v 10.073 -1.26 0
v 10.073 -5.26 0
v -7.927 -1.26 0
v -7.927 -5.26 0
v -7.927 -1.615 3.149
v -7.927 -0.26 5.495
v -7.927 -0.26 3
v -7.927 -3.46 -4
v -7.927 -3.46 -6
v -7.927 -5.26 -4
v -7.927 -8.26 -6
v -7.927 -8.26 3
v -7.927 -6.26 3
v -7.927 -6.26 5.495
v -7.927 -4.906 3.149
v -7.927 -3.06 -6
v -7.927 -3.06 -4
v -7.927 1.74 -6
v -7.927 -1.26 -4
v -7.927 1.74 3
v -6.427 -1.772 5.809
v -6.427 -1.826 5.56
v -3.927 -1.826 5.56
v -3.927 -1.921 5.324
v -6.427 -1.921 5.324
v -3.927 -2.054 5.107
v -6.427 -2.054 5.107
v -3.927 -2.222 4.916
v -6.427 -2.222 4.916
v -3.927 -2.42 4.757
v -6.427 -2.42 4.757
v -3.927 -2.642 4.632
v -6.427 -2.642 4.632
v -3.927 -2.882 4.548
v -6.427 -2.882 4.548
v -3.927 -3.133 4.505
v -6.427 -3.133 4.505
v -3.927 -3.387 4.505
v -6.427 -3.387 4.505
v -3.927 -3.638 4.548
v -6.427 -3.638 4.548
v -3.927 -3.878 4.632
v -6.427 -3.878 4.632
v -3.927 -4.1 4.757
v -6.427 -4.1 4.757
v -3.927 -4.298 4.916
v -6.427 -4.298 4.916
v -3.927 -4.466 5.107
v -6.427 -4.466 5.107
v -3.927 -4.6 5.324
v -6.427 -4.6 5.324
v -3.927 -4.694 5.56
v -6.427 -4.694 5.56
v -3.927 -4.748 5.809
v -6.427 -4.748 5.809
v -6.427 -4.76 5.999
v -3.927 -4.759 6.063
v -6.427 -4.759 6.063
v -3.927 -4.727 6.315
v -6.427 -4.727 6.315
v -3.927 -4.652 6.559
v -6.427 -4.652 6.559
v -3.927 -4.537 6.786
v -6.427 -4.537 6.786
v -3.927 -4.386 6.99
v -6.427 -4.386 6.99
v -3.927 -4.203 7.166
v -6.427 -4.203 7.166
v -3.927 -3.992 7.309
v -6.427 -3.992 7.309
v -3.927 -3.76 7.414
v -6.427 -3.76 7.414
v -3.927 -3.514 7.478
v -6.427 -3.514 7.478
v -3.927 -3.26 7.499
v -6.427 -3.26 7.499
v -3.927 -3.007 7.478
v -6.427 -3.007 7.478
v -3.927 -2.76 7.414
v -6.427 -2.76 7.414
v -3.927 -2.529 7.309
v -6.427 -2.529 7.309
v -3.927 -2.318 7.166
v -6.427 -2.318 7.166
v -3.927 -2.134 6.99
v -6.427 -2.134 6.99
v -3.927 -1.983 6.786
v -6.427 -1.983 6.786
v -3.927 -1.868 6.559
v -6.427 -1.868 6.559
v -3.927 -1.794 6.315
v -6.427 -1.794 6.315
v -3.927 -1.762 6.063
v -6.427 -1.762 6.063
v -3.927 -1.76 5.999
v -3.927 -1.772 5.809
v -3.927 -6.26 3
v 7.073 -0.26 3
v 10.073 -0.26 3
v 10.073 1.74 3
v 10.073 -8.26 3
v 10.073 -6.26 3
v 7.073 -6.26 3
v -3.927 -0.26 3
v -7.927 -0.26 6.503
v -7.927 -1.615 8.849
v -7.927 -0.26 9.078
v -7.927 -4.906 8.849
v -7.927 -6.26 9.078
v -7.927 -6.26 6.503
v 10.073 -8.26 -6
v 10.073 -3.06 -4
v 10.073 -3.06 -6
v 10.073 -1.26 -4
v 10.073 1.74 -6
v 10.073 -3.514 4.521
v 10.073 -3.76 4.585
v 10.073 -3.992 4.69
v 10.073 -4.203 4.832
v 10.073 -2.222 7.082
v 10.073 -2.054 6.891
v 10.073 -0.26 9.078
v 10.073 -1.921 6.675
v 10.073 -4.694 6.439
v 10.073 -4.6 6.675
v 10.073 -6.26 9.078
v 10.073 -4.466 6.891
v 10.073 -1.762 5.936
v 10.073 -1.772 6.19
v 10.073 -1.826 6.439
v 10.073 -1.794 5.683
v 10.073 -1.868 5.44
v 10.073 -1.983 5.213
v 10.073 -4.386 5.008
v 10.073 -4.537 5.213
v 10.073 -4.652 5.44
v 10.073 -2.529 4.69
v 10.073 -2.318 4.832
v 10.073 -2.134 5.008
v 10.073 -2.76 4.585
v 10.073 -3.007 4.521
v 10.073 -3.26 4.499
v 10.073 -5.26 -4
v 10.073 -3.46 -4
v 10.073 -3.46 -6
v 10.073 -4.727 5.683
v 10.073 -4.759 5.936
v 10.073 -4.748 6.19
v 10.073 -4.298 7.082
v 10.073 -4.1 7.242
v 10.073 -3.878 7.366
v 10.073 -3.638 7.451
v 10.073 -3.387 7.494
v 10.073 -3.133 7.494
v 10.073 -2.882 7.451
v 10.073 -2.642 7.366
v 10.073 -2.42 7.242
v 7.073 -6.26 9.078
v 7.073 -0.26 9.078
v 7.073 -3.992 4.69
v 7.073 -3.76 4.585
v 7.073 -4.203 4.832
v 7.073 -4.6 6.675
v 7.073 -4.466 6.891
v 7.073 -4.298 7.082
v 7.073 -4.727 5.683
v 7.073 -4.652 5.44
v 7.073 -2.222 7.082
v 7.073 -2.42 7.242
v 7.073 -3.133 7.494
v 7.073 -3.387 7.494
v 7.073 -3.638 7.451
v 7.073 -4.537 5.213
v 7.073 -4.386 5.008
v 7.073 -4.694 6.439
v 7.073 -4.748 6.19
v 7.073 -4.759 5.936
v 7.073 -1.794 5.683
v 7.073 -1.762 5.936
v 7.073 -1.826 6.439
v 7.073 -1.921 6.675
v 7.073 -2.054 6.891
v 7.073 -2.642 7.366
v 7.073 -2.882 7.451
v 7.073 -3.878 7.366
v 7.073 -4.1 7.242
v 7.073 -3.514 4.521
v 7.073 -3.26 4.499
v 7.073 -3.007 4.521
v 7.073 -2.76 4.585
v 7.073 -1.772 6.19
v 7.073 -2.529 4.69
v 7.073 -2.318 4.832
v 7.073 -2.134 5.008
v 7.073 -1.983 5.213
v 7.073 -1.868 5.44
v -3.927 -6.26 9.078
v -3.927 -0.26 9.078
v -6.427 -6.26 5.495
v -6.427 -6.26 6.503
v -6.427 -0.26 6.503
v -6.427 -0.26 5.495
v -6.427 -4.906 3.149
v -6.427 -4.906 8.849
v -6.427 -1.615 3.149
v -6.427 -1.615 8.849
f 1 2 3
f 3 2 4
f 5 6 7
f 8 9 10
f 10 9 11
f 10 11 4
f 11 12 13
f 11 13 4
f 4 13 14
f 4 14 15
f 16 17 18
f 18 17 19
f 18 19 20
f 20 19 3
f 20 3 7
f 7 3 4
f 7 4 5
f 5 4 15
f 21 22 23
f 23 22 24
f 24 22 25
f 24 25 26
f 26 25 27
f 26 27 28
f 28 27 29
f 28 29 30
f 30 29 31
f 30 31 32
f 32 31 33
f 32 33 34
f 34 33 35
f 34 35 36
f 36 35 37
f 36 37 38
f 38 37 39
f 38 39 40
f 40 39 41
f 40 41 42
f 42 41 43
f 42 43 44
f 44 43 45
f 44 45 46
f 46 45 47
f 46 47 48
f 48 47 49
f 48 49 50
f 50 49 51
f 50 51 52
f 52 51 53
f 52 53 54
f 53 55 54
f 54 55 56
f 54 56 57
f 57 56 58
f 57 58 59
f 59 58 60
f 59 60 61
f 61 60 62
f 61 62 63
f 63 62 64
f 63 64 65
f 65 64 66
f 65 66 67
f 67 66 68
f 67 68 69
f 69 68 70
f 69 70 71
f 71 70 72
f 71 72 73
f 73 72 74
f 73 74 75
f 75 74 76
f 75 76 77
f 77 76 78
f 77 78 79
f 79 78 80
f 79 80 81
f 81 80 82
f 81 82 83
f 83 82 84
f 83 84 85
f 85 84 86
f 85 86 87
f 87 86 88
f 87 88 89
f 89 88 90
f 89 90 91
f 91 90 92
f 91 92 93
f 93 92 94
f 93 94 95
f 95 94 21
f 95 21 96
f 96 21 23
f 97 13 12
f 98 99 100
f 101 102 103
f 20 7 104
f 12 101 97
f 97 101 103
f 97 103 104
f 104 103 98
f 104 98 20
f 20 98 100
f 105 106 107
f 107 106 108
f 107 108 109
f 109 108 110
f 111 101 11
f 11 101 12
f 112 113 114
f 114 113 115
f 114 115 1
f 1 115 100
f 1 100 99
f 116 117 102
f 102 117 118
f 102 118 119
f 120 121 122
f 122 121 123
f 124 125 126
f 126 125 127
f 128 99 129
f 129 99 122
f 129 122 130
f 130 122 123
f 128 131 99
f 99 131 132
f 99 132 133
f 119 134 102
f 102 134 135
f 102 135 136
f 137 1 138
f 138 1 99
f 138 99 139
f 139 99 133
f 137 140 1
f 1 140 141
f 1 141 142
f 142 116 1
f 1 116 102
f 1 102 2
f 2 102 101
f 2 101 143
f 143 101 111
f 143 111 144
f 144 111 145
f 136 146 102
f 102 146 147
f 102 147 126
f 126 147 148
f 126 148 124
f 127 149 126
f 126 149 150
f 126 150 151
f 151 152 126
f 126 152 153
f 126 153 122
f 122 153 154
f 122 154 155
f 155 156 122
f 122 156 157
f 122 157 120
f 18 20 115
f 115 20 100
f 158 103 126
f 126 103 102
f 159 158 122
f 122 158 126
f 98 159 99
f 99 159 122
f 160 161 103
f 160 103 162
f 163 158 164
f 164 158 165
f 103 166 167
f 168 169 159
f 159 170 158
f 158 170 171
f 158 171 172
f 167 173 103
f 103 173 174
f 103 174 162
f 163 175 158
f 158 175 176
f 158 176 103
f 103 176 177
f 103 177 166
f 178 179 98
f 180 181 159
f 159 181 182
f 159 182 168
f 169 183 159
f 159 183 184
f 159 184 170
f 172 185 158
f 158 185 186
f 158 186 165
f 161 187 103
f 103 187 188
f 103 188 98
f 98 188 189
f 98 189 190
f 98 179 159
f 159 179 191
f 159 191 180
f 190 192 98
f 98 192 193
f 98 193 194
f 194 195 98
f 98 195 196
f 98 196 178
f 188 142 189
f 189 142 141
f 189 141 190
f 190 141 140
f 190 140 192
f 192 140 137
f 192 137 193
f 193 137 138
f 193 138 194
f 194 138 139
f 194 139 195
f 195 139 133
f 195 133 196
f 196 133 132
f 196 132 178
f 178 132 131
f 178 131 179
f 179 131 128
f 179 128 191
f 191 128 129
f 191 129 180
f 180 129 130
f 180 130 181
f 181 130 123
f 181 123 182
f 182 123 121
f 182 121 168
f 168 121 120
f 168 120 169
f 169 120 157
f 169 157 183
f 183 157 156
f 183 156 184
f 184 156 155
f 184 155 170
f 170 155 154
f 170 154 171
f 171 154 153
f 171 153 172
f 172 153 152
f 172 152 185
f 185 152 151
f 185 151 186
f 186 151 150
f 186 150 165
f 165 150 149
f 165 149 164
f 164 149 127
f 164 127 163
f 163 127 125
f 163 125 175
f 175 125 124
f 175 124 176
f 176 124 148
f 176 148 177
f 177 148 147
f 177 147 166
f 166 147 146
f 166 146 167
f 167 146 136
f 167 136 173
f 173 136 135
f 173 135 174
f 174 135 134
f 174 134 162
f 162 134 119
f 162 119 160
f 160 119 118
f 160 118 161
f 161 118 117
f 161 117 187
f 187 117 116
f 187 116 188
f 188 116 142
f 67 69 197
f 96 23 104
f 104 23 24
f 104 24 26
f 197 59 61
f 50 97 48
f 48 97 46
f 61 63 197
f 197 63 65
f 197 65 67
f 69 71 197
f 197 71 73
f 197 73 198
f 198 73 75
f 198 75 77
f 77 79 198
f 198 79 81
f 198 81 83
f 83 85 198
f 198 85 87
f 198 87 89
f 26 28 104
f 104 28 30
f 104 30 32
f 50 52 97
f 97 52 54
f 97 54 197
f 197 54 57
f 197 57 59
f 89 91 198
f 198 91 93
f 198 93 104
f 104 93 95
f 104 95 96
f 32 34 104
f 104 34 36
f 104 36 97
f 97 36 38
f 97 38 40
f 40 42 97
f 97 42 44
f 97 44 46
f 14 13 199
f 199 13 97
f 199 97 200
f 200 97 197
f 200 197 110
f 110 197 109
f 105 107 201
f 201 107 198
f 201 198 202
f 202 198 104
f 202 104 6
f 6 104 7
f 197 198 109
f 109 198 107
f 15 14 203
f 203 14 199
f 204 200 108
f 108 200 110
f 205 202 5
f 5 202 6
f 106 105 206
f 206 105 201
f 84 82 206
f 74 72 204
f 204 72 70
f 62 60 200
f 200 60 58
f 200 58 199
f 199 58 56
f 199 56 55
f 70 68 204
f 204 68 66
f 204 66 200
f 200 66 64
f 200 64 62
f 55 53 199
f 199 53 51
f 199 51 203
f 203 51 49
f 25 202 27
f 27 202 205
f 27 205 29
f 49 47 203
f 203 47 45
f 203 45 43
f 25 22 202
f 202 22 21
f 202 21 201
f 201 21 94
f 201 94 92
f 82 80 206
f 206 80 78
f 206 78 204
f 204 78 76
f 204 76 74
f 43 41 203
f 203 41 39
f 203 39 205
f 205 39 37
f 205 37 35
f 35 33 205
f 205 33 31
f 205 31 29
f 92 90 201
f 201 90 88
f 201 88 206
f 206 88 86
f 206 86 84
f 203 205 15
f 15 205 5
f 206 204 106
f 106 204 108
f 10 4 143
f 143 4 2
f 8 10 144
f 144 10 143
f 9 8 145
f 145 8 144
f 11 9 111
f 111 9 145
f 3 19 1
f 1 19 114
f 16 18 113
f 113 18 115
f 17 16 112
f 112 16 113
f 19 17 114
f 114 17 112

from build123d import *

# Parameters (mm, degrees)
CROQUIS1_W              = 18
CROQUIS1_H              = 10
SALIENTE_EXTRUIR1_DEPTH = 3
CROQUIS2_W              = 6.078202003
CROQUIS2_H              = 6
CROQUIS2_R              = 1.5
SALIENTE_EXTRUIR2_DEPTH = 3
SALIENTE_EXTRUIR3_START = -18
CROQUIS2_2_W            = 6.078202003
CROQUIS2_2_H            = 6
CROQUIS2_2_R            = 1.5
SALIENTE_EXTRUIR3_DEPTH = 4
CORTAR_EXTRUIR1_DEPTH   = 1.5
SALIENTE_EXTRUIR4_DEPTH = 18


with BuildPart() as part:
    # Croquis1 → Saliente-Extruir1 (new body)
    with BuildSketch(Plane.XY):
        with Locations((1.07264213, -3.260188088)):
            Rectangle(CROQUIS1_W, CROQUIS1_H)
    extrude(amount=SALIENTE_EXTRUIR1_DEPTH)

    # Croquis2 → Saliente-Extruir2 (add)
    with BuildSketch(Plane(origin=(10.07264213, 0, 0), x_dir=(0, 0, -1), z_dir=(1, 0, 0))):
        with Locations((-6.039101002, -3.260188088)):
            Rectangle(CROQUIS2_W, CROQUIS2_H)
        with Locations((-5.99926787, -3.260188088)):
            Circle(CROQUIS2_R, mode=Mode.SUBTRACT)
    extrude(amount=-SALIENTE_EXTRUIR2_DEPTH)

    # Croquis2<2> → Saliente-Extruir3 (add)
    with BuildSketch(Plane(origin=(10.07264213, 0, 0), x_dir=(0, 0, -1), z_dir=(1, 0, 0)).offset(SALIENTE_EXTRUIR3_START)):
        with Locations((-6.039101002, -3.260188088)):
            Rectangle(CROQUIS2_2_W, CROQUIS2_2_H)
        with Locations((-5.99926787, -3.260188088)):
            Circle(CROQUIS2_2_R, mode=Mode.SUBTRACT)
    extrude(amount=SALIENTE_EXTRUIR3_DEPTH)

    # Croquis3 → Cortar-Extruir1 (cut)
    with BuildSketch(Plane.ZY.offset(7.92735787)):
        Polygon((5.99926787, -6.551084622), (8.84926787, -4.905636355), (8.84926787, -1.614739821), (5.99926787, 0.030708447), (3.14926787, -1.614739821), (3.14926787, -4.905636355), align=None)
    extrude(amount=-CORTAR_EXTRUIR1_DEPTH, mode=Mode.SUBTRACT)

    # Croquis4 → Saliente-Extruir4 (add)
    with BuildSketch(Plane(origin=(10.07264213, 0, 0), x_dir=(0, 0, -1), z_dir=(1, 0, 0))):
        Polygon((4, -1.260188088), (4, -3.060188088), (6, -3.060188088), (6, -1.260188088), (6, 1.739811912), (0, 1.739811912), (0, -1.260188088), align=None)
        Polygon((0, -8.260188088), (6, -8.260188088), (6, -5.260188088), (6, -3.460188088), (4, -3.460188088), (4, -5.260188088), (0, -5.260188088), align=None)
    extrude(amount=-SALIENTE_EXTRUIR4_DEPTH)


solid = part.part
